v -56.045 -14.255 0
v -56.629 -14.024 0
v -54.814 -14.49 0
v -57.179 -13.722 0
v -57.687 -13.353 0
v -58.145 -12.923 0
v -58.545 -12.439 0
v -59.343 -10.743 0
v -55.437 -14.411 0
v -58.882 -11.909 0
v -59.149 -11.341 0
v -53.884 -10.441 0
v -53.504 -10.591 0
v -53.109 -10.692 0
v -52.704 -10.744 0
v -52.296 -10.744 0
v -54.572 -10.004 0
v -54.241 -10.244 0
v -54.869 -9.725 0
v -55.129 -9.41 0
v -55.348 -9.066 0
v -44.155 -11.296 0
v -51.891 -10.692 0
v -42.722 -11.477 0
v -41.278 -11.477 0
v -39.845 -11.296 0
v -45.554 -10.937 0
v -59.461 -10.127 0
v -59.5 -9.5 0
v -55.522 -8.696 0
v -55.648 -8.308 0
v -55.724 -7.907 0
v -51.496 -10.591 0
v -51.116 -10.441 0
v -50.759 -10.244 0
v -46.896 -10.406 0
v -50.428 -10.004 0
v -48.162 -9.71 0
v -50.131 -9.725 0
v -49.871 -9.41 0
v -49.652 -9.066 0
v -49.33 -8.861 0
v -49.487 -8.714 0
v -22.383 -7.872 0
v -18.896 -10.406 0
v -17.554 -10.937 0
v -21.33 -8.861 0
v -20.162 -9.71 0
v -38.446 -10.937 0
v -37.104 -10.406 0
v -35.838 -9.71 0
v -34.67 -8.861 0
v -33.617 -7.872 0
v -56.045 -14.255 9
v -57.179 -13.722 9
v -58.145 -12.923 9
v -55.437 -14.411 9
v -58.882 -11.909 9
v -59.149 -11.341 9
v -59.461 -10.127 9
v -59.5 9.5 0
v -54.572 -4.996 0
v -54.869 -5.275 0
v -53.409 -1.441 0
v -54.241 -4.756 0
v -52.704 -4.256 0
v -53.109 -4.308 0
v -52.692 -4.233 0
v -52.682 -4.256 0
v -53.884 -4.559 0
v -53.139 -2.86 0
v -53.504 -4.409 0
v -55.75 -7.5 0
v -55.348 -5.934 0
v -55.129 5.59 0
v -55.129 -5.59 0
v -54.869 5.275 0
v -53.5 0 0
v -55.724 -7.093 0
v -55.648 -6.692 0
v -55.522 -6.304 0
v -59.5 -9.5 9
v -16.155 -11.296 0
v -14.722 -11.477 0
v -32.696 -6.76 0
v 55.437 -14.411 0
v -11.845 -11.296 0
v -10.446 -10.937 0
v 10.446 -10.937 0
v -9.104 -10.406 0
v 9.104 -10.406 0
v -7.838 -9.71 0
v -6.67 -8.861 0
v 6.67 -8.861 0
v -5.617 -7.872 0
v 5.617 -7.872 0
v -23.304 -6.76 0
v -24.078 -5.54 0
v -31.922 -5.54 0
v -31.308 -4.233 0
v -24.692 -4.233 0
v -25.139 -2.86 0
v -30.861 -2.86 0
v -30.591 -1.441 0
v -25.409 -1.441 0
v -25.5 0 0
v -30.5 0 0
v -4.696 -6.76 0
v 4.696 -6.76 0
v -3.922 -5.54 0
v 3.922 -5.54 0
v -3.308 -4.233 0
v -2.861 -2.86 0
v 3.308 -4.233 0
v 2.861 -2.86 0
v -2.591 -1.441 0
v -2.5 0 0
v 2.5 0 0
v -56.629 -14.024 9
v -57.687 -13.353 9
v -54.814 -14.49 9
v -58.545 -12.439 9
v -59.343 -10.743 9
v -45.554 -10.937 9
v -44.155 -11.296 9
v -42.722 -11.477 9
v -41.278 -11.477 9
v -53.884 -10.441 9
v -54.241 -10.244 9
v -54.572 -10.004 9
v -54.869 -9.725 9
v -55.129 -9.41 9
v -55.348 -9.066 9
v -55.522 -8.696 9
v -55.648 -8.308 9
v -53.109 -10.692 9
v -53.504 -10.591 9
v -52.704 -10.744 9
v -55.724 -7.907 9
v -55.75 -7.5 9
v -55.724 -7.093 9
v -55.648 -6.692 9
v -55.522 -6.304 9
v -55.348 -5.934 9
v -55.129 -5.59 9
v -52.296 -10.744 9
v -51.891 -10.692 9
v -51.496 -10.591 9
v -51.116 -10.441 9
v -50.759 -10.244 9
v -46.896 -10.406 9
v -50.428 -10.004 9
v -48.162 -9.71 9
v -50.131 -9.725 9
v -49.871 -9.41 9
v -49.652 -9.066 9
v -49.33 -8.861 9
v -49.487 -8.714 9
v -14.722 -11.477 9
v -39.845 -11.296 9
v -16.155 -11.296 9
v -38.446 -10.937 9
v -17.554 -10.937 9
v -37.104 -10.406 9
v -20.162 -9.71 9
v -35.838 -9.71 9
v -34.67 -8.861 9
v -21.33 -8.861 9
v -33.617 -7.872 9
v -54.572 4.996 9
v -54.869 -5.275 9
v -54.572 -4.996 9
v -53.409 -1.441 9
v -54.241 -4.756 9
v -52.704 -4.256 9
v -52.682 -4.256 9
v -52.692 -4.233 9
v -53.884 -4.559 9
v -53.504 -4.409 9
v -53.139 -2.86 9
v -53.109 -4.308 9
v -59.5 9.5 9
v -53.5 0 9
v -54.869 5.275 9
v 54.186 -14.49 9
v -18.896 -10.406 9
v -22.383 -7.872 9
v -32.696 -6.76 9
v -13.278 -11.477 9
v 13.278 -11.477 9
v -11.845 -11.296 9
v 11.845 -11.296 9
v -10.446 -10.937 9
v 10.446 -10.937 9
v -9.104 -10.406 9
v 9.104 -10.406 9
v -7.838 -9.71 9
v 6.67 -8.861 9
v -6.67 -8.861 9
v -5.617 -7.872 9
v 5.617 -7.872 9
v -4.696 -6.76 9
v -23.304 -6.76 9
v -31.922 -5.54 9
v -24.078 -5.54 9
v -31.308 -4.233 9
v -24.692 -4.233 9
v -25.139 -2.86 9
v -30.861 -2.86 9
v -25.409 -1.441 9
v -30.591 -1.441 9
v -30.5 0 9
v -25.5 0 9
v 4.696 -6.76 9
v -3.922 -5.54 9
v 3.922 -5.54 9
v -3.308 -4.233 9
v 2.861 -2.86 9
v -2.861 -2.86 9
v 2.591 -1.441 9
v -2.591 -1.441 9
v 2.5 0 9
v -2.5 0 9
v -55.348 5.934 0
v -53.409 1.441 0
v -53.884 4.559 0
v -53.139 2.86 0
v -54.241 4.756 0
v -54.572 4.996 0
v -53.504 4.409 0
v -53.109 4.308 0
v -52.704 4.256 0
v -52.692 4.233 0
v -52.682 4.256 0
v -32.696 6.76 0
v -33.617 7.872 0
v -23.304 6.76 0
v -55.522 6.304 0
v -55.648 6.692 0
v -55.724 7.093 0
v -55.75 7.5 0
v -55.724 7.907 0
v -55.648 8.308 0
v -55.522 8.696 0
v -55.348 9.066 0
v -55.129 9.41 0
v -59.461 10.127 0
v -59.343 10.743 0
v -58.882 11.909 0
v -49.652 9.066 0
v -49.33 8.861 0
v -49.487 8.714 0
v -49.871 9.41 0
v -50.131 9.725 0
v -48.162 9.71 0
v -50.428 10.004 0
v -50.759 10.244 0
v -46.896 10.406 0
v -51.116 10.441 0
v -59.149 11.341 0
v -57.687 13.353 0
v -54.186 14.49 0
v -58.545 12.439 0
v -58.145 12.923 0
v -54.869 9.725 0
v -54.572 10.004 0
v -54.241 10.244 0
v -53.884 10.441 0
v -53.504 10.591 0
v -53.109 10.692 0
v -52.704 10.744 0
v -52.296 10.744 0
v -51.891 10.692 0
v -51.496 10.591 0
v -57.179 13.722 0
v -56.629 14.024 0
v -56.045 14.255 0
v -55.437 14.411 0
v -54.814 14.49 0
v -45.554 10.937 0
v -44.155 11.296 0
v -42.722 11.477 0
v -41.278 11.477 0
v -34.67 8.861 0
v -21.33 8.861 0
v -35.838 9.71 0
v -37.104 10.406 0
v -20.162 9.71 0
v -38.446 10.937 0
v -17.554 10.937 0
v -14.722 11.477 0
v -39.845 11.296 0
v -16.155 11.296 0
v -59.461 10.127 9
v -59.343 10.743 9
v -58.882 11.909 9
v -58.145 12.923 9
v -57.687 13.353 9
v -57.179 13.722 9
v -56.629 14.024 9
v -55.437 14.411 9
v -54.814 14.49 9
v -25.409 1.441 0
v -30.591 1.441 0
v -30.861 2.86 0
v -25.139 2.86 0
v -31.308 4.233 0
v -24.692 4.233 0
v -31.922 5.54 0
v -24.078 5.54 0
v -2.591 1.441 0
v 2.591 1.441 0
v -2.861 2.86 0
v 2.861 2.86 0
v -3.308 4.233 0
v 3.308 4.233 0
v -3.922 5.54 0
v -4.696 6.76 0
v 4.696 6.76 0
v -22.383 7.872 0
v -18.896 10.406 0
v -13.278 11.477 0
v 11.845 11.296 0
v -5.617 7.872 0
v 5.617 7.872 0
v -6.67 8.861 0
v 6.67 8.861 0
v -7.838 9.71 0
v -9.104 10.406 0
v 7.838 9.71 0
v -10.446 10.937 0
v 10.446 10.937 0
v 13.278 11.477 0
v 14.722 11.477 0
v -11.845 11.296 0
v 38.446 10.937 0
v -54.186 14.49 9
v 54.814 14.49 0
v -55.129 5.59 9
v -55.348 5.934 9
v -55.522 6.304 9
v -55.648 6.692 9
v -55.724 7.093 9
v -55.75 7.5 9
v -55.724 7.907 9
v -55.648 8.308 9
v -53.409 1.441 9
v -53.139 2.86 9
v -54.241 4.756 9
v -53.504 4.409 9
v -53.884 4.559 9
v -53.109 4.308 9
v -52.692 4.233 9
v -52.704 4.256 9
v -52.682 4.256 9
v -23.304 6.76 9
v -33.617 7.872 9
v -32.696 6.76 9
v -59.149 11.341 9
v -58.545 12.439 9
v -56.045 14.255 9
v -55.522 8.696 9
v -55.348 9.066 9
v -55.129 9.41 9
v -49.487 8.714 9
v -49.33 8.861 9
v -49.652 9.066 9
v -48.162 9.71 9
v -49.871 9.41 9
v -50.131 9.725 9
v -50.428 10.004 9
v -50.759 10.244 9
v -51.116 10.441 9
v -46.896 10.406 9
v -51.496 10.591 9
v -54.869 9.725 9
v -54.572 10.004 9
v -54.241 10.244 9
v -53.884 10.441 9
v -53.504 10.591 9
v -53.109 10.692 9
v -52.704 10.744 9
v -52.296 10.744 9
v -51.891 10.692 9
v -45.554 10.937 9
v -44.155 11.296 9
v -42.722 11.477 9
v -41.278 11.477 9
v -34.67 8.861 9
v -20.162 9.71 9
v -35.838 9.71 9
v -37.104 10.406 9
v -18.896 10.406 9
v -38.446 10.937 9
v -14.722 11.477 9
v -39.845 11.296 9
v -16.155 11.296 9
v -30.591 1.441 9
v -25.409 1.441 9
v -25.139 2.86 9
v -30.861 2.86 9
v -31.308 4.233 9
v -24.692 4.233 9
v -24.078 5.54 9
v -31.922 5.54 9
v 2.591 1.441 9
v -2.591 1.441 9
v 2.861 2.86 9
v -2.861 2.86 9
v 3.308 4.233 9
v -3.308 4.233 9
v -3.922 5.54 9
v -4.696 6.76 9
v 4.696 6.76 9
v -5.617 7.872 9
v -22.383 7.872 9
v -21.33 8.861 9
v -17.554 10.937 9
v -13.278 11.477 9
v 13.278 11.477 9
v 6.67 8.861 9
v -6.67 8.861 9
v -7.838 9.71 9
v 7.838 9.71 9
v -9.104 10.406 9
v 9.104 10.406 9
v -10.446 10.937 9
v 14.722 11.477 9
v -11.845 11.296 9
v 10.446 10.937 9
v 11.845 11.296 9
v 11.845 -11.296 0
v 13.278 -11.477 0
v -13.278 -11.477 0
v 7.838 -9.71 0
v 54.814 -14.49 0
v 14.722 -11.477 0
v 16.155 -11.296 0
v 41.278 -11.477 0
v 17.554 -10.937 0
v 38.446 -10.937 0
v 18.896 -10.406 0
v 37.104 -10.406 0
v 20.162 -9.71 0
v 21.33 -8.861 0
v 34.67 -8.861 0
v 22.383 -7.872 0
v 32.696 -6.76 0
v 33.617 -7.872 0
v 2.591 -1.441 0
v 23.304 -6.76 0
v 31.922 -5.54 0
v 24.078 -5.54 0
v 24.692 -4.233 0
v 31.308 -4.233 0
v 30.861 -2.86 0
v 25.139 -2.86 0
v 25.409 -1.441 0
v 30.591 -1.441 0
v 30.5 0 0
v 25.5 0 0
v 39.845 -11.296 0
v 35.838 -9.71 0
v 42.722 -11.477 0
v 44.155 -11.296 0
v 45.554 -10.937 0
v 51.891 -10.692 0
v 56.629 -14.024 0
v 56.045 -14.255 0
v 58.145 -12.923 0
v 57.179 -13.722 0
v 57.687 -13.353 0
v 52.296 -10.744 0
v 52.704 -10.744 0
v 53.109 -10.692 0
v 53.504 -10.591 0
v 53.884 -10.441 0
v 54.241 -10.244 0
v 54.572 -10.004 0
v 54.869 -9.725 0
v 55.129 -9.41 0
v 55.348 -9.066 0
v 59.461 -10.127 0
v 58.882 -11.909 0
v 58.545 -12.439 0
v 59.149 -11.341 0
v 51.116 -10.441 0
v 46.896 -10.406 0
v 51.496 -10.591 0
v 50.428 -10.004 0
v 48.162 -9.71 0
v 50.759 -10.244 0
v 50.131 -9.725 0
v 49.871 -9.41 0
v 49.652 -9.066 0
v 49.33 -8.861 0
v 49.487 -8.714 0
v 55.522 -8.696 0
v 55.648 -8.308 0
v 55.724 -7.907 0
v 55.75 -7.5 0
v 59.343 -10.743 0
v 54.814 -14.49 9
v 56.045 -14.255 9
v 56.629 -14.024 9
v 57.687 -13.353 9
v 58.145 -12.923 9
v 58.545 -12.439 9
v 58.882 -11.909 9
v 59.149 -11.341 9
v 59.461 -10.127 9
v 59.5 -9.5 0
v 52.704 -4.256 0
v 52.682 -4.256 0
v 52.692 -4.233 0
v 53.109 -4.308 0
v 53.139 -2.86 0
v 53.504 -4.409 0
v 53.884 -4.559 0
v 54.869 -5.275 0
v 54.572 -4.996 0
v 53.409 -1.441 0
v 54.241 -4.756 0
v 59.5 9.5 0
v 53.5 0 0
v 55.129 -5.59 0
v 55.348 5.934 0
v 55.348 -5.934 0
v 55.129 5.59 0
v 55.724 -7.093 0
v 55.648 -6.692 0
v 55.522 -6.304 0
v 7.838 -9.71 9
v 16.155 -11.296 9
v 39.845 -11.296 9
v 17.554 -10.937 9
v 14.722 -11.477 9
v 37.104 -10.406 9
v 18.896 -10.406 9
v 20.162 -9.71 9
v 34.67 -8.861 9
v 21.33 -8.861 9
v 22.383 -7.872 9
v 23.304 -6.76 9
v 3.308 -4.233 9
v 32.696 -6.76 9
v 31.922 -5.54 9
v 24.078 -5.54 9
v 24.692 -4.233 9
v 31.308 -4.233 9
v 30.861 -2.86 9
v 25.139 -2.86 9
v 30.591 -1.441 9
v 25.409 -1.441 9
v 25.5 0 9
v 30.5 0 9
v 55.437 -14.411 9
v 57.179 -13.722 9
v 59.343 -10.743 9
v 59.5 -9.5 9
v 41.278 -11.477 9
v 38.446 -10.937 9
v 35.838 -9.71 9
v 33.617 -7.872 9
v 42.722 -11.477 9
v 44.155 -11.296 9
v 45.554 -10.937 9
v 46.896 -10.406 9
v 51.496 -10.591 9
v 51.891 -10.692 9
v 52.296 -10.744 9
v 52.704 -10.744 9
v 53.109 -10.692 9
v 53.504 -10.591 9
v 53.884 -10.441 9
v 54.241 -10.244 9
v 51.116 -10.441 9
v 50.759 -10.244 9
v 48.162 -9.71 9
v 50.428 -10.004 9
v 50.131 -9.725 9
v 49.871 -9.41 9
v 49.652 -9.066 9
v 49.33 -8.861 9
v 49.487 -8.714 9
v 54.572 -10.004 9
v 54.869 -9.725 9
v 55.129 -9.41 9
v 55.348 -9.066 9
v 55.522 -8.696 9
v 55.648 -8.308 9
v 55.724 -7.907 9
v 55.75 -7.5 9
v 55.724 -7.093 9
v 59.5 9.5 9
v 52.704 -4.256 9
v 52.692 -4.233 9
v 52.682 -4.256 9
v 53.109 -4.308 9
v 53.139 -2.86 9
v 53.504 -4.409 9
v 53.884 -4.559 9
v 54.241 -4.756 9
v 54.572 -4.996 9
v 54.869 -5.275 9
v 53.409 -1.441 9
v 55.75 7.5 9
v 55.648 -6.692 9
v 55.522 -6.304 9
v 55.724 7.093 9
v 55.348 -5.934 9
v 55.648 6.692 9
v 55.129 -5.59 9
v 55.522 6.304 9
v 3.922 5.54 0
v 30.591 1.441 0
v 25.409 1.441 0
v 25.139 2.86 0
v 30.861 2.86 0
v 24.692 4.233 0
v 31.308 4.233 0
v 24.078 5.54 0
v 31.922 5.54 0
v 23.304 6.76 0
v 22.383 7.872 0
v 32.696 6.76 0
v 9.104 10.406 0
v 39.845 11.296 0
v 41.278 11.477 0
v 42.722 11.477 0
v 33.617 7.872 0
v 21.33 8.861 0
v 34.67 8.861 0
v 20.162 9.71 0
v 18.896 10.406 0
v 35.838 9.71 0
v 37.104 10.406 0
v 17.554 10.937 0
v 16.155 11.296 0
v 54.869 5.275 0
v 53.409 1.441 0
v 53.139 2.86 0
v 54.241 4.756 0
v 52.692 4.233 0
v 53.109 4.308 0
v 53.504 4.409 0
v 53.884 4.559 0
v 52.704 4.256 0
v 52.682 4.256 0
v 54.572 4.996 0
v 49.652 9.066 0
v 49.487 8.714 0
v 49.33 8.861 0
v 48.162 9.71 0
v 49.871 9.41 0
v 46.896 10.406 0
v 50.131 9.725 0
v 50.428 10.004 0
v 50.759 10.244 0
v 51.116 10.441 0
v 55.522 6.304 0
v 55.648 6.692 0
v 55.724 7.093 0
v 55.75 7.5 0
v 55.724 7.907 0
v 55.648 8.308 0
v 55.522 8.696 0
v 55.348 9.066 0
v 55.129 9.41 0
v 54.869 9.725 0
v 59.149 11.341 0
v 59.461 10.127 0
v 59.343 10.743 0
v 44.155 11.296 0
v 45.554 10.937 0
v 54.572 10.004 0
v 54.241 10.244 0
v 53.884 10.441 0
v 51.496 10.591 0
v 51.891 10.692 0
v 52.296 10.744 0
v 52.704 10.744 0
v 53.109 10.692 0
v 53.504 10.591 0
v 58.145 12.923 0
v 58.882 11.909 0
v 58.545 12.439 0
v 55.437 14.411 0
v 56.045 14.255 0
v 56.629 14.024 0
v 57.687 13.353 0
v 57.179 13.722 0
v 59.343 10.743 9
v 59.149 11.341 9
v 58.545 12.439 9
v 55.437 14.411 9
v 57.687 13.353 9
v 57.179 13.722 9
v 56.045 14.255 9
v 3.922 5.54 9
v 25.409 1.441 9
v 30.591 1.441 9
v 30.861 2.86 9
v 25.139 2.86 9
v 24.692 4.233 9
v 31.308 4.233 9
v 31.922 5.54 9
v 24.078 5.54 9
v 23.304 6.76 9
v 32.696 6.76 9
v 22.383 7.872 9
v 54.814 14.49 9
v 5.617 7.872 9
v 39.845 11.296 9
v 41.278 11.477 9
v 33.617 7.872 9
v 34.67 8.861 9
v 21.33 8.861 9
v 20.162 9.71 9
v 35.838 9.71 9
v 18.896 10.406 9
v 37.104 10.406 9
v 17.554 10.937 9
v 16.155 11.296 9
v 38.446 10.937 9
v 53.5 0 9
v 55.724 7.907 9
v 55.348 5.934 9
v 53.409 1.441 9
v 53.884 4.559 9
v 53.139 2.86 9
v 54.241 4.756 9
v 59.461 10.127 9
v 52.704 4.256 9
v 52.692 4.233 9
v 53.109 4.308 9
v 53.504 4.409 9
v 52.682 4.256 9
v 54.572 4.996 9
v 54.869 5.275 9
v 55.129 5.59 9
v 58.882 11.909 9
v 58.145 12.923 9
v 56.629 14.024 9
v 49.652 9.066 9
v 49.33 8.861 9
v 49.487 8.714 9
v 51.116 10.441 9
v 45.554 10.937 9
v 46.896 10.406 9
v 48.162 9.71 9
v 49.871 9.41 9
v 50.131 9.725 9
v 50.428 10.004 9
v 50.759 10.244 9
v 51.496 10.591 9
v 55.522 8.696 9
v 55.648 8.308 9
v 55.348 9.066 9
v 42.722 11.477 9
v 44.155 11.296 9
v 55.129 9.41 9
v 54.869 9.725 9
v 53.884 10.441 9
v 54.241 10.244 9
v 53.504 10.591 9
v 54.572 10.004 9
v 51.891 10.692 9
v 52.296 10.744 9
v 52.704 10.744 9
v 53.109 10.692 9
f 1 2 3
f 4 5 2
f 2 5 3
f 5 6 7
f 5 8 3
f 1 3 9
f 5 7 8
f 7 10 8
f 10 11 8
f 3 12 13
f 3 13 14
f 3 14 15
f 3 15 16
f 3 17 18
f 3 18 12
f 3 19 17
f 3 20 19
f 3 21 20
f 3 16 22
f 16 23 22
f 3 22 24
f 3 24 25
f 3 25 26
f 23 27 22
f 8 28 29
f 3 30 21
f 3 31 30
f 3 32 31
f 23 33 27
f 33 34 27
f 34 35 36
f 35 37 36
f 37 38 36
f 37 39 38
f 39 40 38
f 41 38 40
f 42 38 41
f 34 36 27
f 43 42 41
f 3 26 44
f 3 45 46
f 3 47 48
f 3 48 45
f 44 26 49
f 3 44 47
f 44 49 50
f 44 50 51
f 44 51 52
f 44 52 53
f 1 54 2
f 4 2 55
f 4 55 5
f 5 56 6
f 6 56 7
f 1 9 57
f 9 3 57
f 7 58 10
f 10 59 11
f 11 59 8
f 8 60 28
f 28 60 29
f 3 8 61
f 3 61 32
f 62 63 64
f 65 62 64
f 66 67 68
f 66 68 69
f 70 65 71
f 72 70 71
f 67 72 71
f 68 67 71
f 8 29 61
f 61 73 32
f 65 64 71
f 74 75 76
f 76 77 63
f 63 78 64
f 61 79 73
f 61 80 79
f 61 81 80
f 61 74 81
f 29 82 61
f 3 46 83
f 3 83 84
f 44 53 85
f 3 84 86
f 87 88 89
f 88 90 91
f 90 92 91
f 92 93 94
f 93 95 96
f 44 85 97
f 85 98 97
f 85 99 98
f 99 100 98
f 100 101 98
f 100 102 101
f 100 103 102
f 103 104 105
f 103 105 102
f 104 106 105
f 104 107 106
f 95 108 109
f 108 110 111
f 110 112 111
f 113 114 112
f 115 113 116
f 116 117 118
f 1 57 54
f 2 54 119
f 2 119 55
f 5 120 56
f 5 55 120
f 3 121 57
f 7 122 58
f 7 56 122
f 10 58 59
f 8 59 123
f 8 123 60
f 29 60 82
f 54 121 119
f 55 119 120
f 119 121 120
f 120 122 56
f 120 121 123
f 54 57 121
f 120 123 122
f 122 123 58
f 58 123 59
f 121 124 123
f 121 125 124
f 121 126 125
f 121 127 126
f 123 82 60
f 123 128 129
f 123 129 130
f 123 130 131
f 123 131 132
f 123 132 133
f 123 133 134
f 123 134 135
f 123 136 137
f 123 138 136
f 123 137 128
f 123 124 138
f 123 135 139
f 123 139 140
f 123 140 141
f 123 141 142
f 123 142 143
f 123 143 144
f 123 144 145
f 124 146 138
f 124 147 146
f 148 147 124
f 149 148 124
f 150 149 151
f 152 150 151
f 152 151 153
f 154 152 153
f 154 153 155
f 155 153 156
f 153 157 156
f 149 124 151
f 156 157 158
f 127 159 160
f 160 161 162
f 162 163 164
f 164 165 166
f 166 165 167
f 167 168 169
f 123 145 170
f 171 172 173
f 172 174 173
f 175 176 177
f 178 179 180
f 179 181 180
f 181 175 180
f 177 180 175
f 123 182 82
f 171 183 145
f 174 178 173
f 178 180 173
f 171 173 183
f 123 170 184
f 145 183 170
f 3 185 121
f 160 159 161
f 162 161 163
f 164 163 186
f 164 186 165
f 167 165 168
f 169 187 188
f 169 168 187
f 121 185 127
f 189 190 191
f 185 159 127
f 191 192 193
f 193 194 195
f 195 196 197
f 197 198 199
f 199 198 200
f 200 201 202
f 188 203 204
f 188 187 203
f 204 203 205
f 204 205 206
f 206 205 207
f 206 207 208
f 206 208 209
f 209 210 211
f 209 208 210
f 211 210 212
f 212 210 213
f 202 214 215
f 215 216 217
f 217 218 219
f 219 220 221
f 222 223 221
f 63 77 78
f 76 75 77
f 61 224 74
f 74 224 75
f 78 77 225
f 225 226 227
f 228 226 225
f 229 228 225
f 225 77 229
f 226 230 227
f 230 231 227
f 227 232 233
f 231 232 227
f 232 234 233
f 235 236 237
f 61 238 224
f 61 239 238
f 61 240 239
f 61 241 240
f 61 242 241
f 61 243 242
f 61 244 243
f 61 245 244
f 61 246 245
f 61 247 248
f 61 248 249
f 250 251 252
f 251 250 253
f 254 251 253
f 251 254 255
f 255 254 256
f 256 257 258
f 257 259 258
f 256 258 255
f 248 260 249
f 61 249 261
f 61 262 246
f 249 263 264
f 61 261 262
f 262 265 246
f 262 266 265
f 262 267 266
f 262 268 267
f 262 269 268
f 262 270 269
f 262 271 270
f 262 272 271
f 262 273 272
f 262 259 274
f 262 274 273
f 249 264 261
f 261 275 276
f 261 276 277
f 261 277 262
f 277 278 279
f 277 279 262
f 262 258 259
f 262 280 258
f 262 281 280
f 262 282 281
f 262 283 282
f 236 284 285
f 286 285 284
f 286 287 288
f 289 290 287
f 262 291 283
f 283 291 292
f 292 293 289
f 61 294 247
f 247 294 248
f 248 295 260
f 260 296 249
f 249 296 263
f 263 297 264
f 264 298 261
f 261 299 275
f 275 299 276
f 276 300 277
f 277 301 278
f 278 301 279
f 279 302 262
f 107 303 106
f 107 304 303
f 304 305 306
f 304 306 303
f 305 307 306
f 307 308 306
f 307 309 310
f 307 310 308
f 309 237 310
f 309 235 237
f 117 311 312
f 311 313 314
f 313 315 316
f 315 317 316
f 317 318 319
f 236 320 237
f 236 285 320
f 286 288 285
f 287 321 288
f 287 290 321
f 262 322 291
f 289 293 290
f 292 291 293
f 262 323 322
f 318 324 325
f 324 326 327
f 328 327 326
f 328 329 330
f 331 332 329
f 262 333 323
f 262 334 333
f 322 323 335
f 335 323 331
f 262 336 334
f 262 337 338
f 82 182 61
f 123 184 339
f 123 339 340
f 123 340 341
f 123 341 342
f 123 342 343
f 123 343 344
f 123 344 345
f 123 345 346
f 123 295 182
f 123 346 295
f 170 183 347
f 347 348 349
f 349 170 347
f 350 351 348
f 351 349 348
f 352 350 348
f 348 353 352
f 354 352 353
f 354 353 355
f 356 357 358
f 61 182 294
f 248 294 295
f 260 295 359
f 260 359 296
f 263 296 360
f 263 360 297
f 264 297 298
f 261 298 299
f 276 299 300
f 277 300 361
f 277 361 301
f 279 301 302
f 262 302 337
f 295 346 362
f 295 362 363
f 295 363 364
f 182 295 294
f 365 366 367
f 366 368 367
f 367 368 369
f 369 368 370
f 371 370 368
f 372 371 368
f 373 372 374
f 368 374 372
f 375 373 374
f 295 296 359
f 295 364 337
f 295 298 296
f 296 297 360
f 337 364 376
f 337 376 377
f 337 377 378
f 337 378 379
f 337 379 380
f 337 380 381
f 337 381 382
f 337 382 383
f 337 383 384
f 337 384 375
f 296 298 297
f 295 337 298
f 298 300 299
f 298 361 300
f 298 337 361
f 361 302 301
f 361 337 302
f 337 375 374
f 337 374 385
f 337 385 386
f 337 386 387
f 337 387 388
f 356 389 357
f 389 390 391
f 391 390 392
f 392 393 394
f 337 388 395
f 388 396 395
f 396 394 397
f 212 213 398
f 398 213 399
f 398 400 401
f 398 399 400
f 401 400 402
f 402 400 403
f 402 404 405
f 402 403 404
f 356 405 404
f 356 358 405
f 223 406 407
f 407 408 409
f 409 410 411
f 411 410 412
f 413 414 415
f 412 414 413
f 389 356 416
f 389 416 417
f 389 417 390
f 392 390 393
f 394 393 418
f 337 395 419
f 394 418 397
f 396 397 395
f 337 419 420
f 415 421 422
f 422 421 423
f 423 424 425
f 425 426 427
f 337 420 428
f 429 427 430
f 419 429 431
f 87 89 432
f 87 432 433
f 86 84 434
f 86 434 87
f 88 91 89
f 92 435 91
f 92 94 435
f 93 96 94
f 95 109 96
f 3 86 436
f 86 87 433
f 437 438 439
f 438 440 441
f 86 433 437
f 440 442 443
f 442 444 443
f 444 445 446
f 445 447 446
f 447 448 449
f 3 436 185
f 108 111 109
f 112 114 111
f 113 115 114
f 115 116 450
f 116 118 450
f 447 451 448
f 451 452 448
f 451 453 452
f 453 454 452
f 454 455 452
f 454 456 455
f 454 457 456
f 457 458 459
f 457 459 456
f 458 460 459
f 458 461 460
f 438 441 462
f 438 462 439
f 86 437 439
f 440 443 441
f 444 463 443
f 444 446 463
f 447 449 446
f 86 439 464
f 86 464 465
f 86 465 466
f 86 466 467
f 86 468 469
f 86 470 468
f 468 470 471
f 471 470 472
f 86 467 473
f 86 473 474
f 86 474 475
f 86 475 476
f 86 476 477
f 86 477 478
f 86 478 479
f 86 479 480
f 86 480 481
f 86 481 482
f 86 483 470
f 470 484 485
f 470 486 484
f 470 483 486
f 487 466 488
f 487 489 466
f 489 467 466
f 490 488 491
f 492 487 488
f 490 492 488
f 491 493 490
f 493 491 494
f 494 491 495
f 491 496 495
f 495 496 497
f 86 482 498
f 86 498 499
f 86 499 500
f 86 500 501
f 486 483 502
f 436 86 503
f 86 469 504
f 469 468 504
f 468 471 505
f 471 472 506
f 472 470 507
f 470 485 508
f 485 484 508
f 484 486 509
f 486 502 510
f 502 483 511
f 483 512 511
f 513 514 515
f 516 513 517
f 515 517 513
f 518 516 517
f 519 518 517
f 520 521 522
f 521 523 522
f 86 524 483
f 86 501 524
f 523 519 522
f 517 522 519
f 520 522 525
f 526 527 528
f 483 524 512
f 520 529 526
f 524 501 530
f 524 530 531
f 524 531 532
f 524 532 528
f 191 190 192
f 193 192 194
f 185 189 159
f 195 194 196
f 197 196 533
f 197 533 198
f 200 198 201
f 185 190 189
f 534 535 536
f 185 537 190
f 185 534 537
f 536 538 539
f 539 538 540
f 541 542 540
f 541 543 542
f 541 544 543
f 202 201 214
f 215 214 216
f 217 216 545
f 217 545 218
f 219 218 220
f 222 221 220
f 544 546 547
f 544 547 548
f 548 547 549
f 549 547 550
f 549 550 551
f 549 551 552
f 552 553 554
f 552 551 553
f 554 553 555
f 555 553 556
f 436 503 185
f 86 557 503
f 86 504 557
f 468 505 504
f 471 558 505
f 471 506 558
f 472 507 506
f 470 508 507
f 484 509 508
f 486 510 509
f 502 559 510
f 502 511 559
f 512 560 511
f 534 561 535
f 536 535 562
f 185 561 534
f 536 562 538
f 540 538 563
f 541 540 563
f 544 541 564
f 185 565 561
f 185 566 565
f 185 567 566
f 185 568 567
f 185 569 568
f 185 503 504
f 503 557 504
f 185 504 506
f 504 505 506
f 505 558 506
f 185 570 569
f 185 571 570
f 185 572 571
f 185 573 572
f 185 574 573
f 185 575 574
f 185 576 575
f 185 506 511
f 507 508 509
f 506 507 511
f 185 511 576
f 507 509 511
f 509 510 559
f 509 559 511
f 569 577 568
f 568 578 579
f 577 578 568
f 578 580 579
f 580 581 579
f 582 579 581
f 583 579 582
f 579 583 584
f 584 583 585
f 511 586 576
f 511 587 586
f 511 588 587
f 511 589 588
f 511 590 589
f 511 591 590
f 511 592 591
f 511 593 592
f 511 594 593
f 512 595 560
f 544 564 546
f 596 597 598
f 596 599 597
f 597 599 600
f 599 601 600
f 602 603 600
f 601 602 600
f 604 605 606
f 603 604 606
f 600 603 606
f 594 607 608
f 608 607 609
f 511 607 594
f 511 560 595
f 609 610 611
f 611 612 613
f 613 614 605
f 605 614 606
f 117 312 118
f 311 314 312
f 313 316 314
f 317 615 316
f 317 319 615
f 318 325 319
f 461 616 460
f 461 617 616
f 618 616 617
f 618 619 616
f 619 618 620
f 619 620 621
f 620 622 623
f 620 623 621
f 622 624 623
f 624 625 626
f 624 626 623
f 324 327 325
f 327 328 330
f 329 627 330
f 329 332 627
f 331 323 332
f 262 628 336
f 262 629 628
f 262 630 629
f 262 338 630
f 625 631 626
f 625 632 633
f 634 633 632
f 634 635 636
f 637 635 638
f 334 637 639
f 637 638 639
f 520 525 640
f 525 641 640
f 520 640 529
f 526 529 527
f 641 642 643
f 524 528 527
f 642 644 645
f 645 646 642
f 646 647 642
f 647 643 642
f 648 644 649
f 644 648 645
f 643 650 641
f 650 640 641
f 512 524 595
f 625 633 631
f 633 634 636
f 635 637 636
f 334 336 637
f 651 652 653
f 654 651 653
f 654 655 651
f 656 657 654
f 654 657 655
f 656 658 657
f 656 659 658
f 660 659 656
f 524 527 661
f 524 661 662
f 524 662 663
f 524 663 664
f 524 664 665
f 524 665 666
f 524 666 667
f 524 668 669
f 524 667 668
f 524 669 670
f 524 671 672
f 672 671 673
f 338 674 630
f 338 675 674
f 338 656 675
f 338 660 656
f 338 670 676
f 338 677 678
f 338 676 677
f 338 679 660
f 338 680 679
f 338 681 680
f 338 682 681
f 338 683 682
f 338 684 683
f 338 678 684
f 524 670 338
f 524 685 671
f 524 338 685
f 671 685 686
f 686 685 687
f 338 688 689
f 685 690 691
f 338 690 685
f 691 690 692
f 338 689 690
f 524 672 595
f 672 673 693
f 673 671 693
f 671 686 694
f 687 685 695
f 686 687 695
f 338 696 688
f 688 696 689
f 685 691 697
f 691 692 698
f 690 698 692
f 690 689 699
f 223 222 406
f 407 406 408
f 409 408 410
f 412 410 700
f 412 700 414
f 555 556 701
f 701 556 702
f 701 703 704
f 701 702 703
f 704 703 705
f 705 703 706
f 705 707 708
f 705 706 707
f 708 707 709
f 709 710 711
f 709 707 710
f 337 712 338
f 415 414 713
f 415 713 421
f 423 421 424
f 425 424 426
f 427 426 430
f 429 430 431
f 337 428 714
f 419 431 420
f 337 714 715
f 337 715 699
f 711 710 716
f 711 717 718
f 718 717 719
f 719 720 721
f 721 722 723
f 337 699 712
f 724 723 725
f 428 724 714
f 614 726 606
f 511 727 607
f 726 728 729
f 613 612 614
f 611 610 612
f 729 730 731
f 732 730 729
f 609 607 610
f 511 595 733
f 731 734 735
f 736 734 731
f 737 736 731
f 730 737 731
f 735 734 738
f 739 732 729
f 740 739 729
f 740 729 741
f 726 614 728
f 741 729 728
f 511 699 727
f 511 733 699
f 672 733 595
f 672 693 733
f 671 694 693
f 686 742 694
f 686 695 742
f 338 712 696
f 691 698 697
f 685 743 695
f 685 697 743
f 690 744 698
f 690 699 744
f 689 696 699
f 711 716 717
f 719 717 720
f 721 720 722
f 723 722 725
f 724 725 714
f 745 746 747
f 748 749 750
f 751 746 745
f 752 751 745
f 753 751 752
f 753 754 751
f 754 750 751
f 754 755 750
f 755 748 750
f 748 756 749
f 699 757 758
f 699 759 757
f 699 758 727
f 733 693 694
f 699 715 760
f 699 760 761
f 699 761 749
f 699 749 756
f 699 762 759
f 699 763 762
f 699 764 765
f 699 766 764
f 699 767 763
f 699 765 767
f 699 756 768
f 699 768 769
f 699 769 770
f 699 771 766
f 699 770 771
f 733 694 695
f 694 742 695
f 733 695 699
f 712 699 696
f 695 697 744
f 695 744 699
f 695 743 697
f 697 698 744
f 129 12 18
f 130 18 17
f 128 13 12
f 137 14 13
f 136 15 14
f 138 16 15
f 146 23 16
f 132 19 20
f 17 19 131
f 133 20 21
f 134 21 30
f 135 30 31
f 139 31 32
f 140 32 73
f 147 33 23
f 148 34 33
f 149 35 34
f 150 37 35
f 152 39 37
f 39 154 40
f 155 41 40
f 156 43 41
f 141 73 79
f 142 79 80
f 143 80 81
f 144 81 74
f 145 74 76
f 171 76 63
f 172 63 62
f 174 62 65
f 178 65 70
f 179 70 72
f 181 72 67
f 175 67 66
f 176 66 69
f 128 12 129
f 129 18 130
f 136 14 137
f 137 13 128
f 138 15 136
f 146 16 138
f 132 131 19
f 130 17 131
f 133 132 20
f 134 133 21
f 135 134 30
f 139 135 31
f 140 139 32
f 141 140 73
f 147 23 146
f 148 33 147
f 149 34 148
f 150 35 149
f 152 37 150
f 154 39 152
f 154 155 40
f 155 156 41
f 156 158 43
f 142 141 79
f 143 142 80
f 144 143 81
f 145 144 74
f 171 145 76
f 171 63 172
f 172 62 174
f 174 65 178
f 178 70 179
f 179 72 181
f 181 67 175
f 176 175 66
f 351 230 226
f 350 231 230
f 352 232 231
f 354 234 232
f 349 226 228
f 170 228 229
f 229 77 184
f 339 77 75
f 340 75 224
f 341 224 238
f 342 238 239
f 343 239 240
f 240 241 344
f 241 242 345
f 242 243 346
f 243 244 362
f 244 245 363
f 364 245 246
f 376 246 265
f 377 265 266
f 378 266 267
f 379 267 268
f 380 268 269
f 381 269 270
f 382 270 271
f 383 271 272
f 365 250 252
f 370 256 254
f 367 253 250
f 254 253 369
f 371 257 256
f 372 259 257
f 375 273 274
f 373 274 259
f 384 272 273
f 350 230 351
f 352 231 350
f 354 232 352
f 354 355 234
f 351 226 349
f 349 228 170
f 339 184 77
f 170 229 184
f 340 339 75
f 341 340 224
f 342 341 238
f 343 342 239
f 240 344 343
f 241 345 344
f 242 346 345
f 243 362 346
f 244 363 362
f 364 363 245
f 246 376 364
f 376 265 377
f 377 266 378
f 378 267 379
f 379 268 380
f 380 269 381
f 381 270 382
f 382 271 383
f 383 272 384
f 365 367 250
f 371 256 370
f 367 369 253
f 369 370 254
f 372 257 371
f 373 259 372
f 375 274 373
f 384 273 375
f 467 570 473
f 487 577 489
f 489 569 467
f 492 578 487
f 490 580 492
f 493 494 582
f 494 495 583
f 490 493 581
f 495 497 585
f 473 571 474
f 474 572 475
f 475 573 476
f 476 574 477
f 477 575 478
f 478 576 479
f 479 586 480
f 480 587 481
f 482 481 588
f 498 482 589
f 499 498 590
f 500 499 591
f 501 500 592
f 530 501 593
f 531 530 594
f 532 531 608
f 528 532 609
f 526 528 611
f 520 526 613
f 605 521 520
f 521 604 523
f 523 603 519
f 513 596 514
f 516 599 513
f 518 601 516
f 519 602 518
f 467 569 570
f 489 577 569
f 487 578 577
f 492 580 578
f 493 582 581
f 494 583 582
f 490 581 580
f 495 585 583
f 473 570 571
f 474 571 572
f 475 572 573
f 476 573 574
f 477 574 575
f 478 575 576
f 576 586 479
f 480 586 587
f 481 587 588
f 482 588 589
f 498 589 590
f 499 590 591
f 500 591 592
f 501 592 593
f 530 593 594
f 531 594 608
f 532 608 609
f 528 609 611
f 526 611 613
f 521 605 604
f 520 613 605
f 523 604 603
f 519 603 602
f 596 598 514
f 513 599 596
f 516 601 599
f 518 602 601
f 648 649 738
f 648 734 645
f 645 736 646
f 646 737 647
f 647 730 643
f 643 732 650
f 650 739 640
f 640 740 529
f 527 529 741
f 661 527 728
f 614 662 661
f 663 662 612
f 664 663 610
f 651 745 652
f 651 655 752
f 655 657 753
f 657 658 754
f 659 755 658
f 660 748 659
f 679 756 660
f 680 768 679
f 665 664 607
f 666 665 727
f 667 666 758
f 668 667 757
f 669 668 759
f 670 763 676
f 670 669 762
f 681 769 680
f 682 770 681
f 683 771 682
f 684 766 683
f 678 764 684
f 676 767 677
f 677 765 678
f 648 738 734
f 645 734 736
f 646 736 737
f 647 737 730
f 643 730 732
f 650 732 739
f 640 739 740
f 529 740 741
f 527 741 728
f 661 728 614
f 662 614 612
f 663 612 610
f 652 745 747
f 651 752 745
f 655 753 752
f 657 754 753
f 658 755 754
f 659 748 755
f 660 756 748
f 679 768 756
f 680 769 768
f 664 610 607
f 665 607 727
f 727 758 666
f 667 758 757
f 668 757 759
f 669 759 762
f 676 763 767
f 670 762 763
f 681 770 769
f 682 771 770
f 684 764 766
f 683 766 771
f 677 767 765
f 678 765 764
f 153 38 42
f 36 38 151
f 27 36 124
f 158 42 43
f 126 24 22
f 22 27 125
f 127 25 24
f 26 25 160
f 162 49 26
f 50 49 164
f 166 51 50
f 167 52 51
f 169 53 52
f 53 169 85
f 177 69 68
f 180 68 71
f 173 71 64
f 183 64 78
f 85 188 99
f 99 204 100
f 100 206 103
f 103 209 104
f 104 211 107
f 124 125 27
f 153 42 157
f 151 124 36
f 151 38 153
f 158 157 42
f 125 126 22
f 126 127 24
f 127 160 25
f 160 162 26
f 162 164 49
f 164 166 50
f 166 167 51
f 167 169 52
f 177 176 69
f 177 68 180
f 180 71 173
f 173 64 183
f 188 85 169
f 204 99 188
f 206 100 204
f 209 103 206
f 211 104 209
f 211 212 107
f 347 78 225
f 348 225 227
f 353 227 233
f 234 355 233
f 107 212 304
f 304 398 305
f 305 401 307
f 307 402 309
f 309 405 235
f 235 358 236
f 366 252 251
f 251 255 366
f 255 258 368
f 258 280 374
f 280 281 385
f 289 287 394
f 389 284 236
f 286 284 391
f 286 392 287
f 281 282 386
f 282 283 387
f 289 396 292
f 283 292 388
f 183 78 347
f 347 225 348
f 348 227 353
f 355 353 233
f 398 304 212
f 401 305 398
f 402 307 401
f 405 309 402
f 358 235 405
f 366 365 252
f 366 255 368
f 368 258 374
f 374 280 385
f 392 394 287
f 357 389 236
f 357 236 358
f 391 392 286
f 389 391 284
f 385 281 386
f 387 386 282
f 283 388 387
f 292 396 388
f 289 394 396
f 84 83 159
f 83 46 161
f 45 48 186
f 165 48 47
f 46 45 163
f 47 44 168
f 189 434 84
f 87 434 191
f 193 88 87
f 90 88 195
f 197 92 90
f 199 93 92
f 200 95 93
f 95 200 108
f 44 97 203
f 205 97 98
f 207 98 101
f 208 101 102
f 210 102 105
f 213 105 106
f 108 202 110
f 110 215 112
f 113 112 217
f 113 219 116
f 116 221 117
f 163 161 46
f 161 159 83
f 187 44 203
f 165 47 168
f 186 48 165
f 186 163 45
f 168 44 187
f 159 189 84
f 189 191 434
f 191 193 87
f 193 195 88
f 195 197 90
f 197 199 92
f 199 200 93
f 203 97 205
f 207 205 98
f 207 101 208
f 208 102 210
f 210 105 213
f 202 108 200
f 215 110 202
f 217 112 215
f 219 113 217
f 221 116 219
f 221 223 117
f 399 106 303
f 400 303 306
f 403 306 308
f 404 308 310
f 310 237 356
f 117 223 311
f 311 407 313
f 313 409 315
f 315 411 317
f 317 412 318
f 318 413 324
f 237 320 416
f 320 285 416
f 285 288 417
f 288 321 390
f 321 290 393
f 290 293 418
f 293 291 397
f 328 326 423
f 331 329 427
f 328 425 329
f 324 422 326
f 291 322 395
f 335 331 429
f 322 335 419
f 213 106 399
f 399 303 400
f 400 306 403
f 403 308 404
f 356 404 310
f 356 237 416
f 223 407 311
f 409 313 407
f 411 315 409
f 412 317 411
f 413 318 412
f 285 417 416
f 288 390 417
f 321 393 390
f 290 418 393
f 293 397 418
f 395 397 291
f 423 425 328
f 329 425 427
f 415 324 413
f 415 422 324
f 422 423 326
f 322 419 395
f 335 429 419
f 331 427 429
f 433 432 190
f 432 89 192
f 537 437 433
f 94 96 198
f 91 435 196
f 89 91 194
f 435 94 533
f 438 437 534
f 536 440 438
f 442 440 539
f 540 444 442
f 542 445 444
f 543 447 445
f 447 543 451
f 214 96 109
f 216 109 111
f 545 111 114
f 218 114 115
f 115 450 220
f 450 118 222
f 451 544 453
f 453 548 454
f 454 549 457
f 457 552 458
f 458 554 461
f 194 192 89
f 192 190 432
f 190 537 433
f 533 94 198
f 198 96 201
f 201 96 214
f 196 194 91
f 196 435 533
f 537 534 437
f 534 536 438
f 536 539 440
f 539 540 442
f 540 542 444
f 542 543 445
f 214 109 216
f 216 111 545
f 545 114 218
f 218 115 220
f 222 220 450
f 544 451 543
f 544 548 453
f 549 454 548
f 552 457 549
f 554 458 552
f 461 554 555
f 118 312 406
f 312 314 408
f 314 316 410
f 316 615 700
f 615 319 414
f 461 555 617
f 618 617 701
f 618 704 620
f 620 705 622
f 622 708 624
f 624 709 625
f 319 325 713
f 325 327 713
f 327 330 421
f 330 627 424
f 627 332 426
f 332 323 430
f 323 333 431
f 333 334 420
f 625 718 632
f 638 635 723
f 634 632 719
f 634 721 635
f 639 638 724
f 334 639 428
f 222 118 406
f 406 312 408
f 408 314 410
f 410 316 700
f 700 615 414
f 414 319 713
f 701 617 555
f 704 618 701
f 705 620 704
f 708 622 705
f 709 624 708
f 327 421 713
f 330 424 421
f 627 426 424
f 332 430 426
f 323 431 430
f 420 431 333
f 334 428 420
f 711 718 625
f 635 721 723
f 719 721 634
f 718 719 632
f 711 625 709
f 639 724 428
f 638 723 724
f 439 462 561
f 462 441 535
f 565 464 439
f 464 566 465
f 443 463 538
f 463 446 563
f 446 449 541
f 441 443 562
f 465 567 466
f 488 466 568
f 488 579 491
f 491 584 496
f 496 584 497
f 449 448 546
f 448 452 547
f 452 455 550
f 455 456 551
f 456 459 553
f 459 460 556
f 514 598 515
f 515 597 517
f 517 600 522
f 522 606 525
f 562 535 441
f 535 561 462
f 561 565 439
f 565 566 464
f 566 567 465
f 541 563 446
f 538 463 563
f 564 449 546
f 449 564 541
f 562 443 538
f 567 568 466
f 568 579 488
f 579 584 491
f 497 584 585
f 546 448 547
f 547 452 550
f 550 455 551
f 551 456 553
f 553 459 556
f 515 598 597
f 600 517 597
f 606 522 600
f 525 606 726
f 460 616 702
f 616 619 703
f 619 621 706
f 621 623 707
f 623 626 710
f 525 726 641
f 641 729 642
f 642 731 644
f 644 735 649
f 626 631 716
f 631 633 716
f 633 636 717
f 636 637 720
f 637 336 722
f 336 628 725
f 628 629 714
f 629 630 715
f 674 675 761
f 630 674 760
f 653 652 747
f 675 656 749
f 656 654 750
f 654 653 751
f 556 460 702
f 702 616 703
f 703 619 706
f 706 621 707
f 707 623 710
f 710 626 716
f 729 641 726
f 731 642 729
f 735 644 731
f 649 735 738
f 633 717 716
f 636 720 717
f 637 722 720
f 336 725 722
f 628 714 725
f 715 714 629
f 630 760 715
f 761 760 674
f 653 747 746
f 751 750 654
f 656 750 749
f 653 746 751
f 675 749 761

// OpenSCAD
$fn = 50;

difference() {
	union() {
		hull() {
			translate(v = [-54.5, 9.5, 0]) {
				cylinder(h = 9, r = 5);
			}
			translate(v = [54.5, 9.5, 0]) {
				cylinder(h = 9, r = 5);
			}
			translate(v = [-54.5, -9.5, 0]) {
				cylinder(h = 9, r = 5);
			}
			translate(v = [54.5, -9.5, 0]) {
				cylinder(h = 9, r = 5);
			}
		}
	}
	union() {
		translate(v = [-52.5, -7.5, -100.0]) {
			cylinder(h = 200, r = 3.25);
		}
		translate(v = [-52.5, 7.5, -100.0]) {
			cylinder(h = 200, r = 3.25);
		}
		translate(v = [52.5, -7.5, -100.0]) {
			cylinder(h = 200, r = 3.25);
		}
		translate(v = [52.5, 7.5, -100.0]) {
			cylinder(h = 200, r = 3.25);
		}
		translate(v = [-52.5, -7.5, -100.0]) {
			cylinder(h = 200, r = 1.8);
		}
		translate(v = [-52.5, 7.5, -100.0]) {
			cylinder(h = 200, r = 1.8);
		}
		translate(v = [52.5, -7.5, -100.0]) {
			cylinder(h = 200, r = 1.8);
		}
		translate(v = [52.5, 7.5, -100.0]) {
			cylinder(h = 200, r = 1.8);
		}
		translate(v = [-42.0, 0, 0.0]) {
			cylinder(h = 9, r = 11.5);
		}
		translate(v = [-14.0, 0, 0.0]) {
			cylinder(h = 9, r = 11.5);
		}
		translate(v = [14.0, 0, 0.0]) {
			cylinder(h = 9, r = 11.5);
		}
		translate(v = [42.0, 0, 0.0]) {
			cylinder(h = 9, r = 11.5);
		}
	}
}
